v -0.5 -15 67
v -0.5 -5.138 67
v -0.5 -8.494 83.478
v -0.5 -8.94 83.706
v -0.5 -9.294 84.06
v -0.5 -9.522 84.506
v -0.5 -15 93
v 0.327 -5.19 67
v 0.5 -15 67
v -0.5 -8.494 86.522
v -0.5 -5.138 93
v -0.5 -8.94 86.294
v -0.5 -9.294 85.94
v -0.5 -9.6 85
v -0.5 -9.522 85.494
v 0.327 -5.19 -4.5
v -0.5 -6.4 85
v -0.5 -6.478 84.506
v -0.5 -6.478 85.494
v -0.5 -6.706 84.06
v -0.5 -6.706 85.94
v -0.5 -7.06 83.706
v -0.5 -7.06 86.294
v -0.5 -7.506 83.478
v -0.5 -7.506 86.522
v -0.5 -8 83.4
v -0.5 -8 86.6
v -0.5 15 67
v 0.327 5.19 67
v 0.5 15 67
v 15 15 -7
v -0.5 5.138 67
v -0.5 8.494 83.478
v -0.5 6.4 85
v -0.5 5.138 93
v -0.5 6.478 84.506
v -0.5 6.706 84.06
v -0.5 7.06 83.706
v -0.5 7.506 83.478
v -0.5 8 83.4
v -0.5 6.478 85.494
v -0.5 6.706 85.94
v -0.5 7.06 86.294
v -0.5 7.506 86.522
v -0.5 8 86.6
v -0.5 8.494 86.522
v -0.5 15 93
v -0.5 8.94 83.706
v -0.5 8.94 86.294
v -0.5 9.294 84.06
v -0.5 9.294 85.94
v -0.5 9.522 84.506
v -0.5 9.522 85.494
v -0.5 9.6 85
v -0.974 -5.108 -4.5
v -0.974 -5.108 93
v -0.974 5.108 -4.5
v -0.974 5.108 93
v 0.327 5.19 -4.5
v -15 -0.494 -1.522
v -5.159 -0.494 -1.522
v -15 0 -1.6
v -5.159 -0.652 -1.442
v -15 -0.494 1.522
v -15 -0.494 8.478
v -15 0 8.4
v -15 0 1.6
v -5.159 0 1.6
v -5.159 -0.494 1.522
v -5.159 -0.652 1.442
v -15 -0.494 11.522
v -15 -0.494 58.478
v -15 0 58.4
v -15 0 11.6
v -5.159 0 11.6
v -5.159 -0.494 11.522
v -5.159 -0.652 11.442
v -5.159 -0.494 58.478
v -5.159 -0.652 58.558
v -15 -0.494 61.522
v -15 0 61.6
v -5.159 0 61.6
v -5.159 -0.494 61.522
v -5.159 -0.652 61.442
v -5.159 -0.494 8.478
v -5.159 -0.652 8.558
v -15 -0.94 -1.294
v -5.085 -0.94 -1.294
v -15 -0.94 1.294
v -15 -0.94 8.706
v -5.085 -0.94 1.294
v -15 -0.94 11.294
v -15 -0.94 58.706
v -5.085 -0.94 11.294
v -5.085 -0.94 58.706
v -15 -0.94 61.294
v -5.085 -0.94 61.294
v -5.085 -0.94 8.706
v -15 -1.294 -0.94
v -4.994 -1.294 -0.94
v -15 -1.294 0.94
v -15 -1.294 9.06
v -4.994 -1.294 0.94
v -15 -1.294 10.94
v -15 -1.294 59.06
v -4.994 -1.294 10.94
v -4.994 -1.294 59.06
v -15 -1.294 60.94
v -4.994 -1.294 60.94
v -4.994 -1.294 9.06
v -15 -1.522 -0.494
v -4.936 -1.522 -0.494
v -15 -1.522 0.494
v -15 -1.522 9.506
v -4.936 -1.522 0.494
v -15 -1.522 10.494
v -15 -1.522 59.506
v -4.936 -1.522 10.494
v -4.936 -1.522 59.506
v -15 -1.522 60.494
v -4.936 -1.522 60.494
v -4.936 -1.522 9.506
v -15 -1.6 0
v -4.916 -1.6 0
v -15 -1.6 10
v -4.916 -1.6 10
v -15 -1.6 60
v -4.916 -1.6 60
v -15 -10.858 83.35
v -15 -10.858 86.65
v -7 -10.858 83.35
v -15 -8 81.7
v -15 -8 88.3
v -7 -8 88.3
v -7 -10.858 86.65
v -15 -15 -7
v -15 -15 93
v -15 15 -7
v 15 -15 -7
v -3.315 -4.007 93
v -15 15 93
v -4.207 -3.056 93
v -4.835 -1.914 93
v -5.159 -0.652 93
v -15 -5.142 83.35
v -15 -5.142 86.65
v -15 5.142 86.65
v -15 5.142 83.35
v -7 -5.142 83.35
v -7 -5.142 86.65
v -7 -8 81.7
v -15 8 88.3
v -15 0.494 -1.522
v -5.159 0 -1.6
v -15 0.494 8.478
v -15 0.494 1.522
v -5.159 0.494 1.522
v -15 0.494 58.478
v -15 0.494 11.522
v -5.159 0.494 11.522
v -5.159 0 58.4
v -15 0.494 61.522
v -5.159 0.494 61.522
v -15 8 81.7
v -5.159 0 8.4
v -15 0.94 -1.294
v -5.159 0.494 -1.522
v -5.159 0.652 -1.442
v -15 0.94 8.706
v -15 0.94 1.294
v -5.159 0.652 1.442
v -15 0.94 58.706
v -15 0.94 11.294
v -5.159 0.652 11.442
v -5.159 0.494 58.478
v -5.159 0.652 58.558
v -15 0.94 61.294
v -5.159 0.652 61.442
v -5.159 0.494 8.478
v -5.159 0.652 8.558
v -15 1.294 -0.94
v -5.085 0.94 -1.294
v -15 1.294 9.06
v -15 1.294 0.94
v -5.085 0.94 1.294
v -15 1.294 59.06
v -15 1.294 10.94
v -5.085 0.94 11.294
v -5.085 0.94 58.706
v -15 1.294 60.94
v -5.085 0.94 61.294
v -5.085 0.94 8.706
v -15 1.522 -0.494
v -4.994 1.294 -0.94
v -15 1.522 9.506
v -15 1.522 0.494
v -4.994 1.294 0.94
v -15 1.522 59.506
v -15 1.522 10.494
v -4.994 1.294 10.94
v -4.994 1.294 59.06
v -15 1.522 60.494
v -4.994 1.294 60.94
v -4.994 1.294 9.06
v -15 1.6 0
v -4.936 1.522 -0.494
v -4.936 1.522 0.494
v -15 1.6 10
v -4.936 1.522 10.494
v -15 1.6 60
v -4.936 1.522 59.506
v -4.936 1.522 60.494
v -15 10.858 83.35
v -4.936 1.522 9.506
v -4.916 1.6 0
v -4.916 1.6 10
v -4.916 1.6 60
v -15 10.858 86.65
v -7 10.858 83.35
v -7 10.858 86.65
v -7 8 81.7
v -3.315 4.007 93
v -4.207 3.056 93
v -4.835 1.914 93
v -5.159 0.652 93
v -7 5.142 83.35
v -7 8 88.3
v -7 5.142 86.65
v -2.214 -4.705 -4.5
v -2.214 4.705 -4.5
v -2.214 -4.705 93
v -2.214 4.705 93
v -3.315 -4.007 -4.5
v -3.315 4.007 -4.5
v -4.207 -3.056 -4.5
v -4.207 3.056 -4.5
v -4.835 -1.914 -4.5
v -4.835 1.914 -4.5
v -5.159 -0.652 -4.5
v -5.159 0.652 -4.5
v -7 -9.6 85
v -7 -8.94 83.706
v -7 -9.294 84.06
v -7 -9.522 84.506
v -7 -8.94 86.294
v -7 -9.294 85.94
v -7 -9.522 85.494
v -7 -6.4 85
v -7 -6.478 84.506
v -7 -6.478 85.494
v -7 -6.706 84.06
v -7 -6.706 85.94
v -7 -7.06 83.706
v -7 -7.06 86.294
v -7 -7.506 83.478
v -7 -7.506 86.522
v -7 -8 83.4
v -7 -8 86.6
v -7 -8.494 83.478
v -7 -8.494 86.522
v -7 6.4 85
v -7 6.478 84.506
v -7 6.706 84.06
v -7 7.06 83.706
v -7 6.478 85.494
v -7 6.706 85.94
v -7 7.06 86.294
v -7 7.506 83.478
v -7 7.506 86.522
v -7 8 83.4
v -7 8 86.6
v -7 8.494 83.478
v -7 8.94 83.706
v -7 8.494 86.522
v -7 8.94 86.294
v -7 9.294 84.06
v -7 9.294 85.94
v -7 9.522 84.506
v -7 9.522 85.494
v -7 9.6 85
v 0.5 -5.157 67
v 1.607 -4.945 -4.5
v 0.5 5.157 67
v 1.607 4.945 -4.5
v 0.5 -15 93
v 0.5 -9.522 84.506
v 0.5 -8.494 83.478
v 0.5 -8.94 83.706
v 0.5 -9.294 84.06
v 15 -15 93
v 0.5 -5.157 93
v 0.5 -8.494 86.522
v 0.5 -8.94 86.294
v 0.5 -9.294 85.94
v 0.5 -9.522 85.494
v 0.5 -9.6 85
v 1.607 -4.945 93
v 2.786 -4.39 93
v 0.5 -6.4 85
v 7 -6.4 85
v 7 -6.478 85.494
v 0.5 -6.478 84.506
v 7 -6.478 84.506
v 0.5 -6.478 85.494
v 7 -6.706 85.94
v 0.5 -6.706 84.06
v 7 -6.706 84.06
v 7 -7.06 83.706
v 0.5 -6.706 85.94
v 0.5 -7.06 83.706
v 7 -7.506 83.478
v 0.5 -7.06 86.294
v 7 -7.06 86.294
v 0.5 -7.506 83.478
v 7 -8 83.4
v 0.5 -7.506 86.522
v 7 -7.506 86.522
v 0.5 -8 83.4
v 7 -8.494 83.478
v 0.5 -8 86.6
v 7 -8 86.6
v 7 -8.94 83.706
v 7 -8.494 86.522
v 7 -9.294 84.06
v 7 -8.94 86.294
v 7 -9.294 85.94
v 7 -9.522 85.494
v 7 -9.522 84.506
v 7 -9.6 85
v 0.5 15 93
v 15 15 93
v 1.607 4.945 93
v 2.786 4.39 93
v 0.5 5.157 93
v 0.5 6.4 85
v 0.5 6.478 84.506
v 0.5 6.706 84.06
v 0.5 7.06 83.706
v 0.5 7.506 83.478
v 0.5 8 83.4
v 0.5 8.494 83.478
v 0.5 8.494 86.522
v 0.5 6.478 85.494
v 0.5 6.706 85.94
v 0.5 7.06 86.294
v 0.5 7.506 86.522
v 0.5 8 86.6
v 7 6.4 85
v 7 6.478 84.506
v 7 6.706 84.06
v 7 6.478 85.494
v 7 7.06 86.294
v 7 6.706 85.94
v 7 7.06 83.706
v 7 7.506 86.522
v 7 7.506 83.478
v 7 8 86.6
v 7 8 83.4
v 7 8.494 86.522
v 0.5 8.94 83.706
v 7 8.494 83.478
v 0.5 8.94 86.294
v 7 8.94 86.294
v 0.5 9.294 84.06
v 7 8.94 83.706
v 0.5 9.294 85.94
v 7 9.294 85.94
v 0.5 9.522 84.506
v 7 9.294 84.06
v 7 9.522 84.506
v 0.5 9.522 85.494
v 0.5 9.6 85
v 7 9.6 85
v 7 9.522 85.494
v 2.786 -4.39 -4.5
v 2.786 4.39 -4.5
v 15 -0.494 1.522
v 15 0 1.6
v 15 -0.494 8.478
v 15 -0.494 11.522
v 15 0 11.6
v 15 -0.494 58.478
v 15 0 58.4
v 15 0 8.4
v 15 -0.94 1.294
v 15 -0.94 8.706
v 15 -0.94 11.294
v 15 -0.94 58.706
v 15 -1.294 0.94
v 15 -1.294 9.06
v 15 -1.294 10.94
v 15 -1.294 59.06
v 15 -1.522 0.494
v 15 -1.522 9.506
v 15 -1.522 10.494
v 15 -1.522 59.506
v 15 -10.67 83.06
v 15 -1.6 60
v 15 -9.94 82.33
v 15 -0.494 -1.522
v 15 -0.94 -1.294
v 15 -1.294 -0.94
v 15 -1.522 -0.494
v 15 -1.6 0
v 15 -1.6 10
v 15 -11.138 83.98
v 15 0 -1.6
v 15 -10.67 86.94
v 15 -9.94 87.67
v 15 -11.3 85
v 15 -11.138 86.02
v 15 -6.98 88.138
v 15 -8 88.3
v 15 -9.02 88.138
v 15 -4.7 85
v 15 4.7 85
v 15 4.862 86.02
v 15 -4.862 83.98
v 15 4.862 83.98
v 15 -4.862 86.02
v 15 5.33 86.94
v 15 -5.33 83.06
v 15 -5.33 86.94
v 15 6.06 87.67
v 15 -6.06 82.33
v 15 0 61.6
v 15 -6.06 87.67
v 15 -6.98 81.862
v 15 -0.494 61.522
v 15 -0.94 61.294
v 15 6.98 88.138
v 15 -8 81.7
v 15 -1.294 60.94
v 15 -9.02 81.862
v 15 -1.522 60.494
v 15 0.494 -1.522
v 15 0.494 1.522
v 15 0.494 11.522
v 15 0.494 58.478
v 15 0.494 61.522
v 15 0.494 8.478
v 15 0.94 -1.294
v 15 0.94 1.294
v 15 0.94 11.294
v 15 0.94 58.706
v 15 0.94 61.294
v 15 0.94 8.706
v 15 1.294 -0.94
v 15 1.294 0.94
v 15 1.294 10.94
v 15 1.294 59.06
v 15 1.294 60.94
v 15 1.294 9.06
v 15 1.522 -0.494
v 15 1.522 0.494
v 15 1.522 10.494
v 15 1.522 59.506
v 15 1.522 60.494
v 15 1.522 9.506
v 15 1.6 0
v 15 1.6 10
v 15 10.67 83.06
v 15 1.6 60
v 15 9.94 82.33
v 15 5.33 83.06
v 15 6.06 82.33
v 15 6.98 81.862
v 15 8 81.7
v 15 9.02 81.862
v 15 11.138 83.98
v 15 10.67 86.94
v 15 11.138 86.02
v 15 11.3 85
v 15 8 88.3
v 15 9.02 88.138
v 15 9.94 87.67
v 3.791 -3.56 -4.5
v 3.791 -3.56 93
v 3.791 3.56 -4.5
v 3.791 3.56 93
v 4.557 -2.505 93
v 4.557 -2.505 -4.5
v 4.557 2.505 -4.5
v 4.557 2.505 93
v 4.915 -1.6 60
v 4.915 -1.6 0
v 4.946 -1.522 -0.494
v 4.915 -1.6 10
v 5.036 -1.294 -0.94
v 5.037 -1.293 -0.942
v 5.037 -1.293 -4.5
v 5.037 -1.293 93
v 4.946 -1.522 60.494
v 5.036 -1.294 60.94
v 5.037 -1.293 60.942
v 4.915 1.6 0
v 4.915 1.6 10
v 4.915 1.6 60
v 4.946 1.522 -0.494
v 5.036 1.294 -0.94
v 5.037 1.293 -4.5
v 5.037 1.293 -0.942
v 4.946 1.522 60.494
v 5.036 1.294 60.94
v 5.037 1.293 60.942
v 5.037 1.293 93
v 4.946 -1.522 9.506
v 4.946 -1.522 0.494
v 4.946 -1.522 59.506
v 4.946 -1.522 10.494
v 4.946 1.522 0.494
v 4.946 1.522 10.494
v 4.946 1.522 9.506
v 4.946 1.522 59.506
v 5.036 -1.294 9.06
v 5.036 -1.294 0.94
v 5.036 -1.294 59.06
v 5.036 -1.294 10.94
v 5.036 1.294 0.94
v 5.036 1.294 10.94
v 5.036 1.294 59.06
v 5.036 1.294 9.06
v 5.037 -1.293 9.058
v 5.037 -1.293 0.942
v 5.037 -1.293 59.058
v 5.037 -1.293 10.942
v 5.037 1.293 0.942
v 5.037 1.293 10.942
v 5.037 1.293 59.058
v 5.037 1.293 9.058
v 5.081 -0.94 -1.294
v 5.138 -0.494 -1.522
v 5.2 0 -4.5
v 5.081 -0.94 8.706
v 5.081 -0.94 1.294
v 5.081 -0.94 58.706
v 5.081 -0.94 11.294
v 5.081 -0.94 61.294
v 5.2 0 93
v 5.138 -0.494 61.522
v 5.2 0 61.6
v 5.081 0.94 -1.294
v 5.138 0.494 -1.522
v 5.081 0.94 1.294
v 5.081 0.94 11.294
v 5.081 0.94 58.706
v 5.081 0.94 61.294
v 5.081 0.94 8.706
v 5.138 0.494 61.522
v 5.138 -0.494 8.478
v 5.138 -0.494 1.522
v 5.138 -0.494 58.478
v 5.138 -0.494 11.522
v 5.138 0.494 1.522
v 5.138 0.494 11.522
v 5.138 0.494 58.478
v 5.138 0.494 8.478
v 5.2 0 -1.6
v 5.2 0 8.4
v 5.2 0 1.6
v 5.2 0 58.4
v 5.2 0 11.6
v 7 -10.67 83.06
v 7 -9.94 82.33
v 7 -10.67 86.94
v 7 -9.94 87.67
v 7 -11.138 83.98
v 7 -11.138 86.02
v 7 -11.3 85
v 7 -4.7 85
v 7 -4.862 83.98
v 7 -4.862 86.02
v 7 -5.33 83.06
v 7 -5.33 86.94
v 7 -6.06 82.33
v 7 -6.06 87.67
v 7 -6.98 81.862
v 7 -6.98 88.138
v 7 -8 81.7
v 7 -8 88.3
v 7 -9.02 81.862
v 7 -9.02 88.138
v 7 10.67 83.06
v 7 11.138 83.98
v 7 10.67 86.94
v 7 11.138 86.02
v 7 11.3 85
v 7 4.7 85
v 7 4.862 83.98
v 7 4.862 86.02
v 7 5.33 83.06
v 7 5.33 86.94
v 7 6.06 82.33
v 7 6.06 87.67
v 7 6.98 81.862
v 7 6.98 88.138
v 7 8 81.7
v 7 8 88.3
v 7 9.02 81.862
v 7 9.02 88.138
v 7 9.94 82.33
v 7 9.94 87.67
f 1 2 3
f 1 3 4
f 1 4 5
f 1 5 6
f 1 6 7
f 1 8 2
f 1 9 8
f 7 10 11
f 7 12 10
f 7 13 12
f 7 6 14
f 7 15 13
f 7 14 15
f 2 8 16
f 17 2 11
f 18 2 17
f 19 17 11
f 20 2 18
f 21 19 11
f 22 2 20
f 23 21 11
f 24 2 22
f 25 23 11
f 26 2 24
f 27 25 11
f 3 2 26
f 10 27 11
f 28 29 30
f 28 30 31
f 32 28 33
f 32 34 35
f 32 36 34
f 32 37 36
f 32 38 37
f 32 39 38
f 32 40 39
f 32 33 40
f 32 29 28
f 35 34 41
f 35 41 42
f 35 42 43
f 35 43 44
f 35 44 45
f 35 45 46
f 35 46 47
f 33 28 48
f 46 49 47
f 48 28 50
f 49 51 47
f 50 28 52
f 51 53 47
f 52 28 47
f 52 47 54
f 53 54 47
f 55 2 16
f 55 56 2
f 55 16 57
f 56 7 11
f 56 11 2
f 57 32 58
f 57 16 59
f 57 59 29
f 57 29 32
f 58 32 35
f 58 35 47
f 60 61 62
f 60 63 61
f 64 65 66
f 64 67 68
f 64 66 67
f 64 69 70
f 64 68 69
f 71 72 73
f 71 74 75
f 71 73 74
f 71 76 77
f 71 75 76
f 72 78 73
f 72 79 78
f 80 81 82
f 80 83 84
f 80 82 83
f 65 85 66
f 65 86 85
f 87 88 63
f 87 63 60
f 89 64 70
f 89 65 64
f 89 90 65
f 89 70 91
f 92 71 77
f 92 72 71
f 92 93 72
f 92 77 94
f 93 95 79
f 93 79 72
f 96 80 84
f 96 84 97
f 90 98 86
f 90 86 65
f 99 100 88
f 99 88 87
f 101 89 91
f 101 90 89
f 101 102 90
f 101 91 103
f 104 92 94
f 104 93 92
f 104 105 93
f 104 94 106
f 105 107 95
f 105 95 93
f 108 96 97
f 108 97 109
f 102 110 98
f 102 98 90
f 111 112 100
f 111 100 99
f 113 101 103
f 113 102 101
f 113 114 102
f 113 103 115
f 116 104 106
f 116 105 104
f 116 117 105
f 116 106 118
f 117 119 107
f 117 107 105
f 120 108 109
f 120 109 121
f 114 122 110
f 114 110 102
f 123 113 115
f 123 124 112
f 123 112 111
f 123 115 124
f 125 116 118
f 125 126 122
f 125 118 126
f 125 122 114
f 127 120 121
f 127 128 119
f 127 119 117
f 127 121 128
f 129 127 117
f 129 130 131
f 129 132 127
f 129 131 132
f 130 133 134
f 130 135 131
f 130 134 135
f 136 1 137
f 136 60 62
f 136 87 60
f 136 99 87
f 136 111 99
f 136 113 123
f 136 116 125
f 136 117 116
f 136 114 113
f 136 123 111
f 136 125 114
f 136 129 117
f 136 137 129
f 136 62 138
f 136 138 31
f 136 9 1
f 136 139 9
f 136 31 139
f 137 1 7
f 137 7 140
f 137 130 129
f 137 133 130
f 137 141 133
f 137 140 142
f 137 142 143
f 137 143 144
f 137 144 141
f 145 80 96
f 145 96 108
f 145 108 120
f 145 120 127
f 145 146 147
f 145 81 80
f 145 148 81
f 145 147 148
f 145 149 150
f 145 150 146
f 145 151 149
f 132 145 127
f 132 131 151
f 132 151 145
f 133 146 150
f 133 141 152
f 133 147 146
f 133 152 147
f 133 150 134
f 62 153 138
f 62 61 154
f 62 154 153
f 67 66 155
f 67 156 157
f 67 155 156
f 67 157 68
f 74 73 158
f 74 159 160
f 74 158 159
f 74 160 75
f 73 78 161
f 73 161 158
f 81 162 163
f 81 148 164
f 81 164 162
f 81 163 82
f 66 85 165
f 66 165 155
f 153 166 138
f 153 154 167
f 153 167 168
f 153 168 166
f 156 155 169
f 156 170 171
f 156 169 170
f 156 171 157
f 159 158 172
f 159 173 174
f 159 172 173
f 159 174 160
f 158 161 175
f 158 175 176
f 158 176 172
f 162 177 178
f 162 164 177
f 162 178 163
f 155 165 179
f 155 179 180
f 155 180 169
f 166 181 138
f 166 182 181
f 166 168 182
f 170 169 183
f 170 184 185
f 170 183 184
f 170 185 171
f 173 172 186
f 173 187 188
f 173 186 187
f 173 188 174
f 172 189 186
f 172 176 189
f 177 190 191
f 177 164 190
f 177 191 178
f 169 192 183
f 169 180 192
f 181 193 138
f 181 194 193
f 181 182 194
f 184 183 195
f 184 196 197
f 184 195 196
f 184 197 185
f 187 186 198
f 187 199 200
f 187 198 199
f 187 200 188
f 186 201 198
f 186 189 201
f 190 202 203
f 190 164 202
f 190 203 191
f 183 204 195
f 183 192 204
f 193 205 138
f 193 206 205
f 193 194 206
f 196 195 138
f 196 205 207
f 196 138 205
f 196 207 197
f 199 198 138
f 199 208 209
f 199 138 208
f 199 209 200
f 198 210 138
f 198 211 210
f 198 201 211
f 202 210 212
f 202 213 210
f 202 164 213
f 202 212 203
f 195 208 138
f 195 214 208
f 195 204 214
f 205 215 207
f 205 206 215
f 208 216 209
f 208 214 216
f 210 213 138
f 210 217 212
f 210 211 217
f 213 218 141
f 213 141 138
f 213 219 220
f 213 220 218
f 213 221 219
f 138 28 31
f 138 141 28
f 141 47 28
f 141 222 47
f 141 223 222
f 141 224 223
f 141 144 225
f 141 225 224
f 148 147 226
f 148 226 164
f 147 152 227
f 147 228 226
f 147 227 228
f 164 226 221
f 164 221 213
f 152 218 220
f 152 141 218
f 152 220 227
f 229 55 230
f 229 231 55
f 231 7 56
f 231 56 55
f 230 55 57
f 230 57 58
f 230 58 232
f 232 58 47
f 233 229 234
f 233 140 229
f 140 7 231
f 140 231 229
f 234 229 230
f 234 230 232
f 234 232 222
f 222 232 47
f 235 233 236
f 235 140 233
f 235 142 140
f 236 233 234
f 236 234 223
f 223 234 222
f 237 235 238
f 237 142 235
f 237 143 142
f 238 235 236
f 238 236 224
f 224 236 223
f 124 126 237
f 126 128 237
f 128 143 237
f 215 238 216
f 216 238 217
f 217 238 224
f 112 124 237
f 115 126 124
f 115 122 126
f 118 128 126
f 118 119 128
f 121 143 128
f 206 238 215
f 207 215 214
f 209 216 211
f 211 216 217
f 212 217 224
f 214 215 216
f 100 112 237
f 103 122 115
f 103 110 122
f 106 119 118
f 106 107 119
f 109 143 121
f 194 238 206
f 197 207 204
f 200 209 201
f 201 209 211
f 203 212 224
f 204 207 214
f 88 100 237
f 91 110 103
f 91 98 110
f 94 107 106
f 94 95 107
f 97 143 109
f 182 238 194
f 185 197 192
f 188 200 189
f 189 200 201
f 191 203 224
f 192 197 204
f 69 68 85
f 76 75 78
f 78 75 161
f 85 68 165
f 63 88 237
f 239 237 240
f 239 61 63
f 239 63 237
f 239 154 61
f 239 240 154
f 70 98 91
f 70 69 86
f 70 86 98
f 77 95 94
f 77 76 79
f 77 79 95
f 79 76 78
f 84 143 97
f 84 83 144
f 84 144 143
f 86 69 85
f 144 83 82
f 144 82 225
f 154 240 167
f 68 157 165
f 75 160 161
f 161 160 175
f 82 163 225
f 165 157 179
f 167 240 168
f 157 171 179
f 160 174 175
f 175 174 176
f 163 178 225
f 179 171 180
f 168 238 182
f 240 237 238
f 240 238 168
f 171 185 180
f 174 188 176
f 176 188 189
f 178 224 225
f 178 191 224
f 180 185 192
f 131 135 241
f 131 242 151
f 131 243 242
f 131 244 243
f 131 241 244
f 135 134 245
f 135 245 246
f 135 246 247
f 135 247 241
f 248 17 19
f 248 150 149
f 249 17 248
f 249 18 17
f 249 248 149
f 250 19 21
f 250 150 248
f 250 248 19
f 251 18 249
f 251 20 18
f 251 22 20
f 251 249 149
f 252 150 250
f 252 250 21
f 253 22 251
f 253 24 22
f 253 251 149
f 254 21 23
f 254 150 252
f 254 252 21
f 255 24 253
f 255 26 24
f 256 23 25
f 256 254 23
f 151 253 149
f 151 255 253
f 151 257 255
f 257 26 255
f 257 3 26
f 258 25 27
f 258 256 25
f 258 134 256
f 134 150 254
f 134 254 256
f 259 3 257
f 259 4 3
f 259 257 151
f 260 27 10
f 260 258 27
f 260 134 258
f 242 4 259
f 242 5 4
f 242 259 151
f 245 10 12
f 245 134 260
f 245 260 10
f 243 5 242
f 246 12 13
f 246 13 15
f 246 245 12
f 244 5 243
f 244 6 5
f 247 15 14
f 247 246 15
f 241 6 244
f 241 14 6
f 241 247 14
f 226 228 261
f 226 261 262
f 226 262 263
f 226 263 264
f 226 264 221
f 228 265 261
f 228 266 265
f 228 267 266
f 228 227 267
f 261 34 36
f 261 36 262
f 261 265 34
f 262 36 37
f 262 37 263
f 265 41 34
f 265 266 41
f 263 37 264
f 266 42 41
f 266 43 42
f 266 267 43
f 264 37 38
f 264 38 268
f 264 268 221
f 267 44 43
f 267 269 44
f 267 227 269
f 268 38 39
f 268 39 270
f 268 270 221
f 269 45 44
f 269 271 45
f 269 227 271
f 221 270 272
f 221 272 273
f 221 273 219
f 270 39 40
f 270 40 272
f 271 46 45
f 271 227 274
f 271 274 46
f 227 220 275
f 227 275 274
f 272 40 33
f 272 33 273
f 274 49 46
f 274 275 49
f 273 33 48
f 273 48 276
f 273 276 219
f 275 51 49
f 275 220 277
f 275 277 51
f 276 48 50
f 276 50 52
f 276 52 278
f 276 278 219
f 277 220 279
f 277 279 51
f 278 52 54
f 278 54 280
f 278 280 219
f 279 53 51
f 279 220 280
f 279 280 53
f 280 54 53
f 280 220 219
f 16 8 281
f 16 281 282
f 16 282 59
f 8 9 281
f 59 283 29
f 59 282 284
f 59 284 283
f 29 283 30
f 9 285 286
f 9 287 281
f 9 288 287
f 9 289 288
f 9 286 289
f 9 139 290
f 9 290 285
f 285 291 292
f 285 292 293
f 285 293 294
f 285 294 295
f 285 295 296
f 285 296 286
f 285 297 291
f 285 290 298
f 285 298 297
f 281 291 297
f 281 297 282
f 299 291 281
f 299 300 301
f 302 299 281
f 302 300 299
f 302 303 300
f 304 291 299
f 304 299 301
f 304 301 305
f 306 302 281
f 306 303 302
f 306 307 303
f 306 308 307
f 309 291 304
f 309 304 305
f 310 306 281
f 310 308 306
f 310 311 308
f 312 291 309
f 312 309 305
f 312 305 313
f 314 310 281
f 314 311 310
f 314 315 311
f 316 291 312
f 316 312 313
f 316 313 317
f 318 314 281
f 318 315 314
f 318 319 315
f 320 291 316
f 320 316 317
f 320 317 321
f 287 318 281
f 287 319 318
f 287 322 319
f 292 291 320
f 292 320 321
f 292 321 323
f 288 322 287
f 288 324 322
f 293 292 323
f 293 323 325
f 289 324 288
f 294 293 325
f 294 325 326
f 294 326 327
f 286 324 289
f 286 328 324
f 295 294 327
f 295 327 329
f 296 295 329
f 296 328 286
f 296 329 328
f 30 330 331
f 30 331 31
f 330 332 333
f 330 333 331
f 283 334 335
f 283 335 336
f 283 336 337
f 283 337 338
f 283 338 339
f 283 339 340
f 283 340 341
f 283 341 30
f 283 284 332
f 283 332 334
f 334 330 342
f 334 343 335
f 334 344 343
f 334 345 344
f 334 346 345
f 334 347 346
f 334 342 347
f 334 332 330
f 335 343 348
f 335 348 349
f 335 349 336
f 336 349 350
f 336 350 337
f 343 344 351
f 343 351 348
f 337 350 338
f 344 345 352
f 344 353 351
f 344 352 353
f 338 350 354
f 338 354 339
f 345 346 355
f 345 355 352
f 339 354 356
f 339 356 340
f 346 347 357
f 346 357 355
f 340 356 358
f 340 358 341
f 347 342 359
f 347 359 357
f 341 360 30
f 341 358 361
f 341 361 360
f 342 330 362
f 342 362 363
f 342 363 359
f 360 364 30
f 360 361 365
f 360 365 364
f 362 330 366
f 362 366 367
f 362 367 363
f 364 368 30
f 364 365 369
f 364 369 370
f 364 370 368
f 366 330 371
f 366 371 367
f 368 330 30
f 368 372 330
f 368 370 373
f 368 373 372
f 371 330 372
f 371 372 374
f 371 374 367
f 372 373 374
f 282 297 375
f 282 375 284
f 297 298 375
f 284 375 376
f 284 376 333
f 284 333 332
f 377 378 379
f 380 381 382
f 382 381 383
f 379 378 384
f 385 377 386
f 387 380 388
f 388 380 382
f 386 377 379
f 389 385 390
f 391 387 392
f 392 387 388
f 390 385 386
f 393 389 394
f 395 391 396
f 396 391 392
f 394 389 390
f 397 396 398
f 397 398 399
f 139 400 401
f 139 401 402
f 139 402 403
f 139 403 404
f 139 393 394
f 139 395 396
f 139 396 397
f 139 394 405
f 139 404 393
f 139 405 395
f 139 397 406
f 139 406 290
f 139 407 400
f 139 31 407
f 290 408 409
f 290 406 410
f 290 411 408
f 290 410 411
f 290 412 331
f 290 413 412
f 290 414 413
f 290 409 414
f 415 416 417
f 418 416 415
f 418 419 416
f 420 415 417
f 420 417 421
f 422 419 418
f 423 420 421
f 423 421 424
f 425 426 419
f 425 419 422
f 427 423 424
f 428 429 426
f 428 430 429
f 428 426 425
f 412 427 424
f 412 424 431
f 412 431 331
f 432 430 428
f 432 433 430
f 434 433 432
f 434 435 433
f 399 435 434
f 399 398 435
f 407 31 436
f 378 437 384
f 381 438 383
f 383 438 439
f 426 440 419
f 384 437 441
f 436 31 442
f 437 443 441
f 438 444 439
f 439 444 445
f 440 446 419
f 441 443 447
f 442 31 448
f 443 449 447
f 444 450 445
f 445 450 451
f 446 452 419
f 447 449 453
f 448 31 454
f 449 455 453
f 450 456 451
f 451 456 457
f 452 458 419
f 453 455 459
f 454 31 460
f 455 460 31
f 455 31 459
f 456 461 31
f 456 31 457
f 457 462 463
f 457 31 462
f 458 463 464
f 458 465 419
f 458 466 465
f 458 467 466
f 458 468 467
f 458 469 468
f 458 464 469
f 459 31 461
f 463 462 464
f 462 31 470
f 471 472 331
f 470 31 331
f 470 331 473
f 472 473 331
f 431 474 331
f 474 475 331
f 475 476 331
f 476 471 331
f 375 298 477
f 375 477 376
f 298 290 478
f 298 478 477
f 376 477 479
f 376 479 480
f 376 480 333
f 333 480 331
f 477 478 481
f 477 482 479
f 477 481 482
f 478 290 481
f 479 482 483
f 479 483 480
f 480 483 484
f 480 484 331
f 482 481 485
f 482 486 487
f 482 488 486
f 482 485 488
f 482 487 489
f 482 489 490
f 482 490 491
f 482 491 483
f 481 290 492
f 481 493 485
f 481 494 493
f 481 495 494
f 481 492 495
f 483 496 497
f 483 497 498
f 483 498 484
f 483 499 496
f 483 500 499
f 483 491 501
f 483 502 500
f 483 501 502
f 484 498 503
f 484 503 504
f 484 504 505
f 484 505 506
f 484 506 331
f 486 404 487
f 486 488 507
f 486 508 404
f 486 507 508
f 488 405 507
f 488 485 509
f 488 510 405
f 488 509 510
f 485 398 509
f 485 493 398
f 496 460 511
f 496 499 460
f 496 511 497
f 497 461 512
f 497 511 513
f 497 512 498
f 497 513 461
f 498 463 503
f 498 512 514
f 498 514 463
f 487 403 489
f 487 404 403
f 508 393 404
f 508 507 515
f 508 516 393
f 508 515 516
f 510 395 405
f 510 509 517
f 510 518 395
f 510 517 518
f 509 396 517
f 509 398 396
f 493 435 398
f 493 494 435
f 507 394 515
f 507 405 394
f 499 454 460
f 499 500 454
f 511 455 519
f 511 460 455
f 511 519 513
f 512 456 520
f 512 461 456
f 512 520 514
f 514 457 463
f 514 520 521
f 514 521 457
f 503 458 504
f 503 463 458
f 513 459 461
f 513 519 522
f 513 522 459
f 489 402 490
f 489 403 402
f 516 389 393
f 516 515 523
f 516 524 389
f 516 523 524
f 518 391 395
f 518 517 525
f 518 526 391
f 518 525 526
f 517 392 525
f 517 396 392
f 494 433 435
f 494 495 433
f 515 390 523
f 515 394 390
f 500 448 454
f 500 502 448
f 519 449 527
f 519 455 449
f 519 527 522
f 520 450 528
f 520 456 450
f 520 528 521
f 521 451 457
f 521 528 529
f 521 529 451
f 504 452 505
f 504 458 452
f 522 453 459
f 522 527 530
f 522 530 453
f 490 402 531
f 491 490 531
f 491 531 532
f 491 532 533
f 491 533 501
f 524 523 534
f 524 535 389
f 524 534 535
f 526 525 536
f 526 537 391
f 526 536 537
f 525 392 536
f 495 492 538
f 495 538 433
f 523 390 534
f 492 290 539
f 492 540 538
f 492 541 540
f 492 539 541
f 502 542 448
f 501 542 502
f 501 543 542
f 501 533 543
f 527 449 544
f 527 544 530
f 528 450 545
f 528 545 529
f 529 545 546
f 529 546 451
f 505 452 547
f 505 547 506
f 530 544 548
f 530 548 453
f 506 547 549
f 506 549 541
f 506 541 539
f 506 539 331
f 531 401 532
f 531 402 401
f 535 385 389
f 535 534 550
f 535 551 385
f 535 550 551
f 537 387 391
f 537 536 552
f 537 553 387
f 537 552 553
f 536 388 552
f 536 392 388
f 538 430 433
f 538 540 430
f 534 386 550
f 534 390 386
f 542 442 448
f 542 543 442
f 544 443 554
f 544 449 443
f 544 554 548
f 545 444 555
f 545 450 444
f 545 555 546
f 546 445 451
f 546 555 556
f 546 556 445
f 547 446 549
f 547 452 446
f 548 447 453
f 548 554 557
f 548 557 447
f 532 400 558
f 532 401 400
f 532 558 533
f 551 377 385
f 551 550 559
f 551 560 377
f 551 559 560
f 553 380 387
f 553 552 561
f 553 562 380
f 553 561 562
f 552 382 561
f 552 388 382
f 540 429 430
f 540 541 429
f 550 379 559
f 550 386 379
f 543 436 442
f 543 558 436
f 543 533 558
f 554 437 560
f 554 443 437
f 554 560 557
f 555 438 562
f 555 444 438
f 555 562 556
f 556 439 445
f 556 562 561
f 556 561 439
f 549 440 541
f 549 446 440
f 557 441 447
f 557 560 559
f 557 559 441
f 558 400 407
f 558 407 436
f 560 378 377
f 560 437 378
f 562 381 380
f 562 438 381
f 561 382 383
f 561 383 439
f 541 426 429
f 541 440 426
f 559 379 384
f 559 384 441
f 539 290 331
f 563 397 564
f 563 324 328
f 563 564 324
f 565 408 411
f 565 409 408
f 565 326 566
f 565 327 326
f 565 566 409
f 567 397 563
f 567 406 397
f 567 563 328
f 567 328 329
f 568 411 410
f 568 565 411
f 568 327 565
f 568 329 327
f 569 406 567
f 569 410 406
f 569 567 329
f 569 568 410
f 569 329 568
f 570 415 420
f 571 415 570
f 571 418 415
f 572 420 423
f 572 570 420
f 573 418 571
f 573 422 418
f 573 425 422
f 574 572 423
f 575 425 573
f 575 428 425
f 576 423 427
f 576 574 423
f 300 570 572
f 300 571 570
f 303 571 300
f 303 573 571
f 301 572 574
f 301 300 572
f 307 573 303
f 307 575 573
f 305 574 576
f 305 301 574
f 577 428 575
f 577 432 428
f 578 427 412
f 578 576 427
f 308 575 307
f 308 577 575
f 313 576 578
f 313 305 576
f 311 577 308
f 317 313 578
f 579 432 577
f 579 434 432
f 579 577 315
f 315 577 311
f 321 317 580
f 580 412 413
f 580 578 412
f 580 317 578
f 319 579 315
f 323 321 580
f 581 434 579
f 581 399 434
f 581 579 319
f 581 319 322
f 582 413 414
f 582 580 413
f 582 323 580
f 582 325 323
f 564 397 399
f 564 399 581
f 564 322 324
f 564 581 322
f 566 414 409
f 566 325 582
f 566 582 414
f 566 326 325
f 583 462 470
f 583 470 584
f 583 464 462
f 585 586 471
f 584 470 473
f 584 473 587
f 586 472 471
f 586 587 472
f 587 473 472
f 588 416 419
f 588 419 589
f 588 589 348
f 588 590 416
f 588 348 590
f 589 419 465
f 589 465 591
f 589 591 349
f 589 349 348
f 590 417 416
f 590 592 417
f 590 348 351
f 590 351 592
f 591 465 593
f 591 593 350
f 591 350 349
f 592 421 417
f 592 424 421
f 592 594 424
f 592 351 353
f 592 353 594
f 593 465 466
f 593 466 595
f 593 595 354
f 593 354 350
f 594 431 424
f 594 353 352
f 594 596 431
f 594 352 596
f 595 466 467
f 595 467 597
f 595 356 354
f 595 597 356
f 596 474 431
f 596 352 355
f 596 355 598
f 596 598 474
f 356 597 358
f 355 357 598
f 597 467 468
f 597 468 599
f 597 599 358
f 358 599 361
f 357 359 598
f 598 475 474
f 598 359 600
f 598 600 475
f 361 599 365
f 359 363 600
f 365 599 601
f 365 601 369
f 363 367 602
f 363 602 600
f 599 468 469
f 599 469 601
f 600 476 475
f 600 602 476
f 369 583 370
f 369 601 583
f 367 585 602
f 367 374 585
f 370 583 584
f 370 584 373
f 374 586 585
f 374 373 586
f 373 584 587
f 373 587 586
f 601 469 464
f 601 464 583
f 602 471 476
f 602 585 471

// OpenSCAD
// file: ../lib/igus.scad
include <../../parameters.scad>


module efsm_12(){
    translate([0, 0, -(bearing_efsm_12_ag - bearing_efsm_12_B/2)]){
        translate([-bearing_efsm_12_h/2, -bearing_efsm_12_h/2, 0])
            cube([bearing_efsm_12_h, bearing_efsm_12_h, bearing_efsm_12_a1]);
        difference(){
            union(){
                intersection(){
                    translate([0,0, bearing_efsm_12_ag - bearing_efsm_12_B/2])
                        sphere(d=18, $fn = 50);
                    translate([0,0,-15])
                        cylinder(h = 30, d = 20);
                }
            }
            translate([0, 0, -15])
                cylinder(h=30, d=12);
        }
    }
}


module efsm_8(){
    translate([-33/2, -33/2, 0])
        cube([33, 33, 5.5]);
    translate([0,0,8.5])
        cylinder(h = 2, d1 = 18, d2 = 15);
    translate([0,0,6.5])
        cylinder(h = 7.94/2, d = 2);
    translate([0, 0, 6.5])
        sphere(r=3, $fn = 50);
}


module kstm_05(){
    import("../../STL/external/igus/KSTM_05_1.stl", convexity = 5);
}

module kstm_06(){
    import("../../STL/external/igus/KSTM_06_2.stl", convexity = 5);
}

module kstm_08(){
    import("../../STL/external/igus/KSTM_08_3.stl", convexity = 5);
}

module kstm_10(){
    import("../../STL/external/igus/KSTM_10_4.stl", convexity = 5);
}


data_kstm_center_height = [[5,7],[6,10],[8,10],[10,14]];
function kstm_center_height(type) = data_kstm_center_height[search(type, data_kstm_center_height)[0]][1];

data_kstm_hole_distance = [[5,25], [6,33], [8,33], [10,46], [12,46]];
function kstm_hole_distance(type) = data_kstm_hole_distance[search(type, data_kstm_hole_distance)[0]][1];

data_kstm_thickness = [[5,25], [6,33], [8,33], [10,46], [12,46]];
function kstm_thickness(type) = data_kstm_thickness[search(type, data_kstm_thickness)[0]][1];


translate([0, 0,  kstm_center_height(5)]) kstm_05();
translate([0, 20, kstm_center_height(6)]) kstm_06();
translate([0, 40, kstm_center_height(8)]) kstm_08();
translate([0, 60, kstm_center_height(10)]) kstm_10();
// main file
include <../../parameters.scad>
draft = $preview;
use <../888_1029.scad>
pipe_drill();
